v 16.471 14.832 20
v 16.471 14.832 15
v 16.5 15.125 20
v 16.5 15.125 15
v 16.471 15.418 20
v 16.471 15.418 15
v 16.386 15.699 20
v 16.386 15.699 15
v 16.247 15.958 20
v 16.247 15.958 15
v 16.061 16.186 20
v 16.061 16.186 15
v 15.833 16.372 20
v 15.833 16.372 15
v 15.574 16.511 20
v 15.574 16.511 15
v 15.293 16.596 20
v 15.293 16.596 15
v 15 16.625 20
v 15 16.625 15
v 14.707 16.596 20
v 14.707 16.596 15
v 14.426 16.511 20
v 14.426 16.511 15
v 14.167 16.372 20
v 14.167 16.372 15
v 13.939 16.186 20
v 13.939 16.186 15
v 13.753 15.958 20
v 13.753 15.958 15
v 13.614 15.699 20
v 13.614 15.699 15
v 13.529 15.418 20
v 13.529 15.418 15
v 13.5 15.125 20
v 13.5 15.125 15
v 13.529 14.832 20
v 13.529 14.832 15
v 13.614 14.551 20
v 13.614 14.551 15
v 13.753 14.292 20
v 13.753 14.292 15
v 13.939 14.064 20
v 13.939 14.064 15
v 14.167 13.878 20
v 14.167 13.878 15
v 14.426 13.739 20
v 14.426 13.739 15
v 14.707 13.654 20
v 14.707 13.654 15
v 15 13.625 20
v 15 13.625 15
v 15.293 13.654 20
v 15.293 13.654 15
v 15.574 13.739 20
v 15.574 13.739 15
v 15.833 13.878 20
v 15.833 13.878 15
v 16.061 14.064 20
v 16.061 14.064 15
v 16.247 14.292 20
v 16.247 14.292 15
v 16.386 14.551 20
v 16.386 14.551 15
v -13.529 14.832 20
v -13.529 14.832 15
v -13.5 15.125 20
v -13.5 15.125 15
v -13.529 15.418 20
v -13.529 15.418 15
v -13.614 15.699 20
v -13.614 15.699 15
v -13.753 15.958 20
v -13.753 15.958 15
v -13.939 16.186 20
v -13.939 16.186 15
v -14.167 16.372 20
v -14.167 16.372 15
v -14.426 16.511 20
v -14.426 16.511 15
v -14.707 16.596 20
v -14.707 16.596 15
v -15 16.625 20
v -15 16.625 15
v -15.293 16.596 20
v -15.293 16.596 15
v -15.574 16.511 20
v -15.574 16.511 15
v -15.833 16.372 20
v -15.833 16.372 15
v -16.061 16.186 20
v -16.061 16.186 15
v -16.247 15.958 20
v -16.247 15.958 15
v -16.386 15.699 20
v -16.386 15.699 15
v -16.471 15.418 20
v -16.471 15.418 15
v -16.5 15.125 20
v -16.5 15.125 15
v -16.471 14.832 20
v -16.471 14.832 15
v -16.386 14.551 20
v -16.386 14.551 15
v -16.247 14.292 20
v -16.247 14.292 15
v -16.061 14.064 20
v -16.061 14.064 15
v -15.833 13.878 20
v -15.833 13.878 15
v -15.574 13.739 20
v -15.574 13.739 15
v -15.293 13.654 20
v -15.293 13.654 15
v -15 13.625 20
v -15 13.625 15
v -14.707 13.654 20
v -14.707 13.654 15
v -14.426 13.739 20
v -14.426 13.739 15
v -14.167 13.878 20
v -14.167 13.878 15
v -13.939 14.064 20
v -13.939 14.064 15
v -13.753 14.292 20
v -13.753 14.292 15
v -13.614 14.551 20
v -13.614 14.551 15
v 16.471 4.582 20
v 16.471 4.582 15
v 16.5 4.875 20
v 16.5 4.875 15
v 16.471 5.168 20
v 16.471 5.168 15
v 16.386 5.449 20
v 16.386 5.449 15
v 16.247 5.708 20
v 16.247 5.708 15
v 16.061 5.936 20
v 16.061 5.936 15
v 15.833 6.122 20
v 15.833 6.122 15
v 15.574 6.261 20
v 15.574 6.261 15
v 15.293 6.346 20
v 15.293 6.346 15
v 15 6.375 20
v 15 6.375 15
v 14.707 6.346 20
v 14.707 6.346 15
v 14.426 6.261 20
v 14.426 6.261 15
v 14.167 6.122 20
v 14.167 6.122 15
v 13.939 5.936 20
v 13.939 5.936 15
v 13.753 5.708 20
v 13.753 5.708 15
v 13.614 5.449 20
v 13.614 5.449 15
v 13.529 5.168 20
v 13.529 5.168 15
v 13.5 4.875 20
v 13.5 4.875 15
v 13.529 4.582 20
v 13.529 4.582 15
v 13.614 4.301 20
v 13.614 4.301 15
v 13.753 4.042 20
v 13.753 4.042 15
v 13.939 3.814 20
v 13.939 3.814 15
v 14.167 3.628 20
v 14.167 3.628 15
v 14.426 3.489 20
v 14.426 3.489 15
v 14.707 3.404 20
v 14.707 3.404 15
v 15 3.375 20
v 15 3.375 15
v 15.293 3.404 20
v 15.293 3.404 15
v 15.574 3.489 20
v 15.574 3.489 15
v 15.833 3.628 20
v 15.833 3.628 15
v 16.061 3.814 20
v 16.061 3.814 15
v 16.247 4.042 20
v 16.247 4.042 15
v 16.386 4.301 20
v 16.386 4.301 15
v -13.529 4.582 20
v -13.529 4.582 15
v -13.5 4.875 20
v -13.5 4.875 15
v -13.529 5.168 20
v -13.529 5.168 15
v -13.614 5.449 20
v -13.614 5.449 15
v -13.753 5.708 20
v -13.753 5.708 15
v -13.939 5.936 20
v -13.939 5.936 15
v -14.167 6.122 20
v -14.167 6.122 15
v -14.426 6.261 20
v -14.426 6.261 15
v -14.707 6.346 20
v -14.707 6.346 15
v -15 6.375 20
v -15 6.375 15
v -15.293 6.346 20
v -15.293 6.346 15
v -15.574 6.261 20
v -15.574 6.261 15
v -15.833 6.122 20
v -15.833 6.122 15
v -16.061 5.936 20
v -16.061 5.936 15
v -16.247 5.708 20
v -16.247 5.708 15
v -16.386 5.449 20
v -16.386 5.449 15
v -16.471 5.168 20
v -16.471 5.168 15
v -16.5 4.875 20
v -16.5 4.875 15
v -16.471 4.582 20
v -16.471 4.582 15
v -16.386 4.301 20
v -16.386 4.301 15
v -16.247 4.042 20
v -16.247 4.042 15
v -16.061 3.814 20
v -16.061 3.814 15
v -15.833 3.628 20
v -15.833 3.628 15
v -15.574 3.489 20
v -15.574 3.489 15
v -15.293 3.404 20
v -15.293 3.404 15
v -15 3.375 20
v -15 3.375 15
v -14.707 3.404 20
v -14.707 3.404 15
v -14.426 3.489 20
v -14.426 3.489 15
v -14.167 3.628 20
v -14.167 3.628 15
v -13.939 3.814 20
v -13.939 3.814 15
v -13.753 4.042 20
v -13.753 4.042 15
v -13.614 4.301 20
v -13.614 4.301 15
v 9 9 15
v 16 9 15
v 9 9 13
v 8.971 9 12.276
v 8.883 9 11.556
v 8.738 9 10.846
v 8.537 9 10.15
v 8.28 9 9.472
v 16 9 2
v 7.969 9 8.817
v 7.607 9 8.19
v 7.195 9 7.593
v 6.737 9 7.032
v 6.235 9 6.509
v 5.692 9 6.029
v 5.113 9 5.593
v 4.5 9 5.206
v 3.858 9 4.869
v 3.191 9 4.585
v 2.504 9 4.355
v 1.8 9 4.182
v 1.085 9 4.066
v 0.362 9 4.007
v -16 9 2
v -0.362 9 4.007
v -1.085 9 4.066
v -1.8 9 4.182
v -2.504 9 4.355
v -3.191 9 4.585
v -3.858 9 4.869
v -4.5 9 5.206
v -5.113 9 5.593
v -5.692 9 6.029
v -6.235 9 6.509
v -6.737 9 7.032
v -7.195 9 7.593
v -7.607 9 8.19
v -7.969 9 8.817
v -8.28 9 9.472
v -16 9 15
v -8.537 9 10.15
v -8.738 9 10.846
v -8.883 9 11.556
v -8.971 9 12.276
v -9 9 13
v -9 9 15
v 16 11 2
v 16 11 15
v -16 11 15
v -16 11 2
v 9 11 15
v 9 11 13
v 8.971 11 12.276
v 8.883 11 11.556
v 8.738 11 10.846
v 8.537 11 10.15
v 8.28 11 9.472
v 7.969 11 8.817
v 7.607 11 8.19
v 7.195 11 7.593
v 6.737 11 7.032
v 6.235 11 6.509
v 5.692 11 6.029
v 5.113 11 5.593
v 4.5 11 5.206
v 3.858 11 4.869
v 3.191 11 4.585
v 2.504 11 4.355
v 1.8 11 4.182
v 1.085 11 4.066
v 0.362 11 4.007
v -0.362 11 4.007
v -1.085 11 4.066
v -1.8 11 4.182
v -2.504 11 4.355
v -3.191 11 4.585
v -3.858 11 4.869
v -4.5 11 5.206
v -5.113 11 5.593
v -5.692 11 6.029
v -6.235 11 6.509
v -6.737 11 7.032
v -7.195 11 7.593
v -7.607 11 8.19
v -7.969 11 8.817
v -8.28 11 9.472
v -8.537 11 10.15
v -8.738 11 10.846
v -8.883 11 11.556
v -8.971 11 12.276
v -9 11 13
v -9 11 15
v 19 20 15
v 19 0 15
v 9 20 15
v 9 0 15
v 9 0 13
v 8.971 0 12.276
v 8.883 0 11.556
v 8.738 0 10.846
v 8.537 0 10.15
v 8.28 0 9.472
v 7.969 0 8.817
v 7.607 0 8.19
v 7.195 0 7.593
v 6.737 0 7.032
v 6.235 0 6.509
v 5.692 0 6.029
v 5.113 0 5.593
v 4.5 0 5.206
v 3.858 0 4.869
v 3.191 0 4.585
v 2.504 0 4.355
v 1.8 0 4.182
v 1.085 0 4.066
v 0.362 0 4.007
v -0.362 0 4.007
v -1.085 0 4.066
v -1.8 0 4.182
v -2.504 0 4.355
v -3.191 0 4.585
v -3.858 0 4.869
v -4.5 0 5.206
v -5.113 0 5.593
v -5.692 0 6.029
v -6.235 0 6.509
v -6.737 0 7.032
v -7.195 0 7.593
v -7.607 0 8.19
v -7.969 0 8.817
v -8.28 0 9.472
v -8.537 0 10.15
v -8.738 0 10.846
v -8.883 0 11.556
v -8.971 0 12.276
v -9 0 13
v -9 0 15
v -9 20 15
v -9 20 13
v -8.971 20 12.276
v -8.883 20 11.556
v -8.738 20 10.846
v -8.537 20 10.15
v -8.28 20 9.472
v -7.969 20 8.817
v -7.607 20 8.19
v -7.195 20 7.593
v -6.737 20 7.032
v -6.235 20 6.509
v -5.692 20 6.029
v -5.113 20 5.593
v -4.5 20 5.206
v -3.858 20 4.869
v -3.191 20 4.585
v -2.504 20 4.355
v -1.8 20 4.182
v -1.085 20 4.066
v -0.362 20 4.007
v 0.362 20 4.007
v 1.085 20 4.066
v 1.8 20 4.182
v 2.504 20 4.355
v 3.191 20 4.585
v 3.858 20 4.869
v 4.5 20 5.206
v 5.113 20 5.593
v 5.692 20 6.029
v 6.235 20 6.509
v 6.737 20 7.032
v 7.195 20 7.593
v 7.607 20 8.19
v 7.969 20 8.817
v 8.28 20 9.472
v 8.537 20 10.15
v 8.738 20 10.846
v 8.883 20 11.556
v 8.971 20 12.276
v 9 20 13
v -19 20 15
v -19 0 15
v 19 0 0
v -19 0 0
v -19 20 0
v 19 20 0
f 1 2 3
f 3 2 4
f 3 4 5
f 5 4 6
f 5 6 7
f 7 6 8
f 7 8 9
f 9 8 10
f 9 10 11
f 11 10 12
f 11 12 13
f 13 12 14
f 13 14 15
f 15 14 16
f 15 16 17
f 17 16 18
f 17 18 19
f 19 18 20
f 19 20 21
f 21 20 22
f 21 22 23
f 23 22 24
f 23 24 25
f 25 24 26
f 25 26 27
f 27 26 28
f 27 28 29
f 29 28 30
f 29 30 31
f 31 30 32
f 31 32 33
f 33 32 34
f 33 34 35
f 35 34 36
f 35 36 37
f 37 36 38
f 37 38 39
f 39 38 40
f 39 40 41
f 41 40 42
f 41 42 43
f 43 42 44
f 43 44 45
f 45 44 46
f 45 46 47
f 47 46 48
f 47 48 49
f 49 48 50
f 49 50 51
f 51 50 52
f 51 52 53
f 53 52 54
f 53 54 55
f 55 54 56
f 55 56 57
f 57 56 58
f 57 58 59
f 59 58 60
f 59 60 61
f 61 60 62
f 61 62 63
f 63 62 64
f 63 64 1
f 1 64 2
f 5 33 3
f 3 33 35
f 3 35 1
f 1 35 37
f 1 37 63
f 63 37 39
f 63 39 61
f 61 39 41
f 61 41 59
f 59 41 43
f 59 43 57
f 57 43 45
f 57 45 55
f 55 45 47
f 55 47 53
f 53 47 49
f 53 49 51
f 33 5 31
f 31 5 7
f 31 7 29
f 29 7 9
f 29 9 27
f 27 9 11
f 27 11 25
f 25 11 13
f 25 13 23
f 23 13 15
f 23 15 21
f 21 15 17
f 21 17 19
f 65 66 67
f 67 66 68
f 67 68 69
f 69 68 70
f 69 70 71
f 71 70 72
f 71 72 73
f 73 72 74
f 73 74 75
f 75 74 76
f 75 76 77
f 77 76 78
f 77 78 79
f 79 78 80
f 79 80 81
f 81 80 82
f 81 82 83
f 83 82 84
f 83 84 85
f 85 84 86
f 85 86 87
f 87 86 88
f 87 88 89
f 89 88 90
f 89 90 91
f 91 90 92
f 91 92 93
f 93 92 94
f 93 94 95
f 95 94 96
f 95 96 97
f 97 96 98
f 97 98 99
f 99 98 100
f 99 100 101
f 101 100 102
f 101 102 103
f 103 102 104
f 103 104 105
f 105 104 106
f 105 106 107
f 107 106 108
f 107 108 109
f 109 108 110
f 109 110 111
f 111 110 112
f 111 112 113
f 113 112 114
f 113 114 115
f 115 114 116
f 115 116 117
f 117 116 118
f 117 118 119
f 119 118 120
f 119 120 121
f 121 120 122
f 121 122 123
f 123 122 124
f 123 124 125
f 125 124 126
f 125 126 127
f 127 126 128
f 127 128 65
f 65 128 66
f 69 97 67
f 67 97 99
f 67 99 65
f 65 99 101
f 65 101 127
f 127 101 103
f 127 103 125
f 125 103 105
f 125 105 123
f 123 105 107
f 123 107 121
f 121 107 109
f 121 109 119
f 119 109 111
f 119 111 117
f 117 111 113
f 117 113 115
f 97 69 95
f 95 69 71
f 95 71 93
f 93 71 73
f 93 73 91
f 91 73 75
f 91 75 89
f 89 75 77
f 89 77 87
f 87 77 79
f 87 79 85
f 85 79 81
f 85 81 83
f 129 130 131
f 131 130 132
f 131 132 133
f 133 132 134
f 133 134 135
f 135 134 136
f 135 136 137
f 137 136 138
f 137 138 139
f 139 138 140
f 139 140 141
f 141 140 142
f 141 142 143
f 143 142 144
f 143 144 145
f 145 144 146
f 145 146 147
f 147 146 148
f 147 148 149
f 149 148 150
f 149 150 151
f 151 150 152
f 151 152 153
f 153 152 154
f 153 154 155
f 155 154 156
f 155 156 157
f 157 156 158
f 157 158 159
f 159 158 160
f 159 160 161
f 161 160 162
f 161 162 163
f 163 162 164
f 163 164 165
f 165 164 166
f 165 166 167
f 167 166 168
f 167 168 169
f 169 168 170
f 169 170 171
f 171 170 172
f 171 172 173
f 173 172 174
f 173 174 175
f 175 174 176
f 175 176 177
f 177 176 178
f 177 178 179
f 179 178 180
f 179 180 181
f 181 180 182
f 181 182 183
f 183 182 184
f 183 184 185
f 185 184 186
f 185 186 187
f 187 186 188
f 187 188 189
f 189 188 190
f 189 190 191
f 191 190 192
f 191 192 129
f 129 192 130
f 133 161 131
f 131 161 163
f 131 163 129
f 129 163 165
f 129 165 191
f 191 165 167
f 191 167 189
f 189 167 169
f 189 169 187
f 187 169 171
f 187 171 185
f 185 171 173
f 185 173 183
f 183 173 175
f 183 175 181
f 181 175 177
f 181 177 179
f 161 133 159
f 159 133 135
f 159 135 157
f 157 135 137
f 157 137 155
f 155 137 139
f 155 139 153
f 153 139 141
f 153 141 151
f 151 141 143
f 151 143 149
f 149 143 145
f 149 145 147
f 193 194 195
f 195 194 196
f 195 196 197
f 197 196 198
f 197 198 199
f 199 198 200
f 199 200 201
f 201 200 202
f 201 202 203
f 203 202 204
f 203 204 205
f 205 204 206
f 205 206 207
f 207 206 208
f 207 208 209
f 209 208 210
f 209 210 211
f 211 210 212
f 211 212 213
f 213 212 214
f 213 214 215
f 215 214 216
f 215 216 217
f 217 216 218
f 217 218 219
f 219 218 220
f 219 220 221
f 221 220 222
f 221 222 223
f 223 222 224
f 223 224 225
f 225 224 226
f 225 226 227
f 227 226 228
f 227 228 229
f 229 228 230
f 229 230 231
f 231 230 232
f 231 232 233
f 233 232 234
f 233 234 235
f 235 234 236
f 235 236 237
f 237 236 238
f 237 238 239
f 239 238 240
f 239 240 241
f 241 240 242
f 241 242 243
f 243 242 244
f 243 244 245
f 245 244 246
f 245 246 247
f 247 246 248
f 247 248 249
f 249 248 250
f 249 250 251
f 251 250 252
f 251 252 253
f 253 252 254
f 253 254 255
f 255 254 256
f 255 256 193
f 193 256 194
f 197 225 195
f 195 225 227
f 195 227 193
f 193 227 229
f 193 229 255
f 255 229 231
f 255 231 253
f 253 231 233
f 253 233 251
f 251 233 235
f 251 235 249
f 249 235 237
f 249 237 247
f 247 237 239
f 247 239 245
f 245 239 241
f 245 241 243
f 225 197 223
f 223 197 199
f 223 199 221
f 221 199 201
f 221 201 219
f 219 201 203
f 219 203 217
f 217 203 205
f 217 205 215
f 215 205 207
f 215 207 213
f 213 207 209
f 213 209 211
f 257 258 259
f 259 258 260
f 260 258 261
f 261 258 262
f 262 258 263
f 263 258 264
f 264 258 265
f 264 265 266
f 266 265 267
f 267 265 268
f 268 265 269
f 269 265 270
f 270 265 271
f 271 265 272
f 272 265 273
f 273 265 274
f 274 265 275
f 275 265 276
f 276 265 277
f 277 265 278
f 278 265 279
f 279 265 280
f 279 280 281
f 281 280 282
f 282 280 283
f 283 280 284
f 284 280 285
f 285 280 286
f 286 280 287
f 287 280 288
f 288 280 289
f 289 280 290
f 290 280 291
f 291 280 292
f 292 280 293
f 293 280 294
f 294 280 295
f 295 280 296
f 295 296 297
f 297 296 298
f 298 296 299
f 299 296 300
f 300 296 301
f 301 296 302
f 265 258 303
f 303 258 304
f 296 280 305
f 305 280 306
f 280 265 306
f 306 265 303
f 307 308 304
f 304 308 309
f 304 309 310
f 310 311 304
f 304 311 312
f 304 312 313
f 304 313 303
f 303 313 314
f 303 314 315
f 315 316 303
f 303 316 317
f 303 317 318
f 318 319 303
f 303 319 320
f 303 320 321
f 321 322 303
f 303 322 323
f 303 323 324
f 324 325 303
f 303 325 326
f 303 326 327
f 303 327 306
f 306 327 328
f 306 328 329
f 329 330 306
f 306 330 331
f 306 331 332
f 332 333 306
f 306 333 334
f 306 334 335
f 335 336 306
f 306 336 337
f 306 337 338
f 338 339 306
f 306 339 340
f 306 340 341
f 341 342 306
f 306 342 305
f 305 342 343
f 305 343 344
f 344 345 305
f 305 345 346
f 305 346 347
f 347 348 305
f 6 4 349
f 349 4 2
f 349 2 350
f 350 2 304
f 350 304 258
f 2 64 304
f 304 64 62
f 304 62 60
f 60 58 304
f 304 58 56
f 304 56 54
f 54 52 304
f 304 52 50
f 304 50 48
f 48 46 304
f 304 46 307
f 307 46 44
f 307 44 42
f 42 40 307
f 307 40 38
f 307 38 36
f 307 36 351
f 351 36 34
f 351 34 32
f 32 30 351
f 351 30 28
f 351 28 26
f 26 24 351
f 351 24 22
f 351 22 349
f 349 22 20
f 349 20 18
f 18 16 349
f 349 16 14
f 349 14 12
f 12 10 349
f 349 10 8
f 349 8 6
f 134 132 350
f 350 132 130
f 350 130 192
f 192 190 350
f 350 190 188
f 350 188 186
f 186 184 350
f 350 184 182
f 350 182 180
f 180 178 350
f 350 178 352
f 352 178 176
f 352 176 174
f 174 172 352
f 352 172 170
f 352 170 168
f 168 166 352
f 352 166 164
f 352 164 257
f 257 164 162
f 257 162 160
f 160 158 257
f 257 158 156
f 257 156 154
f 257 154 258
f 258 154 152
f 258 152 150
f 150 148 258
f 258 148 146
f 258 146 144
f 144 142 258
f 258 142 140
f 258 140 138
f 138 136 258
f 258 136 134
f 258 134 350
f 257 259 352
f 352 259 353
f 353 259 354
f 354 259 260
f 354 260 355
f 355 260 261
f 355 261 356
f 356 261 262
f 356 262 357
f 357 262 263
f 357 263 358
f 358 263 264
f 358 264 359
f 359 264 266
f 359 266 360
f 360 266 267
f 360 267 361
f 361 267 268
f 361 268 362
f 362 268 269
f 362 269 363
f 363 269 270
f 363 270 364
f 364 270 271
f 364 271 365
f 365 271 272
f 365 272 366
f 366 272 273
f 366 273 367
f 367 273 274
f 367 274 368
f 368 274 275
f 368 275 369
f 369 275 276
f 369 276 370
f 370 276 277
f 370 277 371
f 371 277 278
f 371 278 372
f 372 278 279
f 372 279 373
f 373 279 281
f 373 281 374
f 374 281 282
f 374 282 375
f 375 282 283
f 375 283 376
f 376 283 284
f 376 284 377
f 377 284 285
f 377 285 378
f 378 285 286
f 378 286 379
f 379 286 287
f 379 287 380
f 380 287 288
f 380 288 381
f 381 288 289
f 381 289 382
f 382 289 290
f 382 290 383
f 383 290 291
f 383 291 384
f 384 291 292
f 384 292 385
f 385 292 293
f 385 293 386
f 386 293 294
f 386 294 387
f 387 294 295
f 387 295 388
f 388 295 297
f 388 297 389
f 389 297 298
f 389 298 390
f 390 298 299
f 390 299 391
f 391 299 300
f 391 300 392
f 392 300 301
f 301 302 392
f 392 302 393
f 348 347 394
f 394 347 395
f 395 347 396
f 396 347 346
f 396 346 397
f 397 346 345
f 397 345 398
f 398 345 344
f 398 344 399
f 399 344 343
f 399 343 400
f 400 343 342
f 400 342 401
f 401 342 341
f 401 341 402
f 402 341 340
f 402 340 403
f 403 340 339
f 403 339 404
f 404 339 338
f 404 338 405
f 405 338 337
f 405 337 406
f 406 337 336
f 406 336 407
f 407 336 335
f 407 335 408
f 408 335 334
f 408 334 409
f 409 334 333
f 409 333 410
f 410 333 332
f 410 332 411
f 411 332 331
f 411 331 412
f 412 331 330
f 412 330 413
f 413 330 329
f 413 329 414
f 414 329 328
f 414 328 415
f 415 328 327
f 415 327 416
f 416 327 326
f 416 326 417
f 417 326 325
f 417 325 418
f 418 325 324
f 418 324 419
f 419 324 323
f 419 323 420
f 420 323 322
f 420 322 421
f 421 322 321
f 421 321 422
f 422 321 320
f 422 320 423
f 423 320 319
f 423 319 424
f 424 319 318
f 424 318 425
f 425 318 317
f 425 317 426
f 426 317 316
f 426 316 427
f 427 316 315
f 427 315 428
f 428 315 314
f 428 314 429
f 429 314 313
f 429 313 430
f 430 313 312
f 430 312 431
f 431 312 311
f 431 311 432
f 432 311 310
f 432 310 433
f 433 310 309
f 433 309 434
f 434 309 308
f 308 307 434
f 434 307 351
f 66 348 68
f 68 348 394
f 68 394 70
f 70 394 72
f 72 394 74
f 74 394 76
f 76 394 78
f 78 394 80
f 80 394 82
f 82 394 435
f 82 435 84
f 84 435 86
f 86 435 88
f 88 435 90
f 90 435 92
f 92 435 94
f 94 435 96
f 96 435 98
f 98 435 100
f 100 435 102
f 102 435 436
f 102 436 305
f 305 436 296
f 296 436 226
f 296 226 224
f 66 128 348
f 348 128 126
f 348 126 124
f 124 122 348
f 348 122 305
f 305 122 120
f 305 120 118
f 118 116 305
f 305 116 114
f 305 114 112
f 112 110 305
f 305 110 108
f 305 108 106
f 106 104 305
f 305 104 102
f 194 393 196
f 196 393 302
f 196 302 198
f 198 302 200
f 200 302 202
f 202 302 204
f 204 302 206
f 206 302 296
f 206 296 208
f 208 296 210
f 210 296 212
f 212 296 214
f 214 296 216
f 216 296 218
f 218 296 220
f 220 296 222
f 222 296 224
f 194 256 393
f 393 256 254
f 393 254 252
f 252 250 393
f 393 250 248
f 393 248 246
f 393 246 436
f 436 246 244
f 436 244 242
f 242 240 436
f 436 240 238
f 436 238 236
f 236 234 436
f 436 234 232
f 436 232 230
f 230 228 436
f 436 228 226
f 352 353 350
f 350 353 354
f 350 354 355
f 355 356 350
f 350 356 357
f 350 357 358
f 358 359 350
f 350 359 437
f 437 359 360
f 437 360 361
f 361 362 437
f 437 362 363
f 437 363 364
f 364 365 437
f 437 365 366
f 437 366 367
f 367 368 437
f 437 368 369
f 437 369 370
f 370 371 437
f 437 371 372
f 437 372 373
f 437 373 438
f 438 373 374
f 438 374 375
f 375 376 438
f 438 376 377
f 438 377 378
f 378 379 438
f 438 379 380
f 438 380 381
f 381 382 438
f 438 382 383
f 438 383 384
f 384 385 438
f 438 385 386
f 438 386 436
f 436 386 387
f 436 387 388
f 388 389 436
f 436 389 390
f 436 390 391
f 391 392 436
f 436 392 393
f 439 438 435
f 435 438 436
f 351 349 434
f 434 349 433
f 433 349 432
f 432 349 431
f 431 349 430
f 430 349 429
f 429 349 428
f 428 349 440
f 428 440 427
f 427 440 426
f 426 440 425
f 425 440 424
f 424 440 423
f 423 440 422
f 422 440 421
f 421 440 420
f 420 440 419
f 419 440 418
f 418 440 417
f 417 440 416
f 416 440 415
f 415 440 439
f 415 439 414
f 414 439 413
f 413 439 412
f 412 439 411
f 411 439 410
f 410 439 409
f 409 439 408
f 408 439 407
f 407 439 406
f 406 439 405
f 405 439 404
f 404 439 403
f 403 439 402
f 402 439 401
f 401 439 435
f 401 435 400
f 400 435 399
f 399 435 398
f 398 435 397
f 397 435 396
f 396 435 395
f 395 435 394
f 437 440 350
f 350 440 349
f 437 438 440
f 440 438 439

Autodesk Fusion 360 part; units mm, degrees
sketch "スケッチ1" plane through (0, 0, 0) normal (0, 0, 1) x (1, 0, 0)
  line L0 (-19, 20) -> (19, 20)
  line L1 (19, 20) -> (19, 0)
  line L2 (19, 0) -> (-19, 0)
  line L3 (-19, 0) -> (-19, 20)
  dimension "d1" = 38
  dimension "d2" = 20
extrude "押し出し1" add sketch "スケッチ1" along normal blind 15
sketch "スケッチ2" plane through (0, 0, 0) normal (0, -1, 0) x (1, 0, 0)
  line L0 (-19, 0) -> (19, 0)
  line L1 (19, 0) -> (19, 15)
  line L2 (19, 15) -> (-19, 15)
  line L3 (-19, 15) -> (-19, 0)
  line L4 (-19, 13) -> (19, 13) construction
  arc A0 (-9, 13) -> (9, 13) centre (0, 13) ccw
  line L5 (9, 13) -> (9, 15)
  line L6 (-9, 13) -> (-9, 15)
  dimension "d5" = 2
  dimension "d6" = 18
extrude "押し出し2" cut sketch "スケッチ2" against normal blind 20 contours L2 A0 L5 L6
ref_plane "作業平面1" through (0, 9, 7.5) normal (0, -1, 0) x (1, 0, 0)
sketch "スケッチ3" plane through (0, 9, 6.5) normal (0, -1, 0) x (1, 0, 0)
  line L0 (-16, 8.5) -> (16, 8.5)
  line L1 (16, 8.5) -> (16, -4.5)
  line L2 (16, -4.5) -> (-16, -4.5)
  line L3 (-16, -4.5) -> (-16, 8.5)
  line L4 (-19, 8.5) -> (-9, 8.5)
  arc A0 (-9, 6.5) -> (9, 6.5) centre (0, 6.5) ccw
  line L5 (19, -6.5) -> (19, 8.5)
  dimension "d10" = 32
  dimension "d11" = 11
  dimension "d12" = 3
extrude "押し出し3" cut sketch "スケッチ3" against normal blind 2
sketch "スケッチ4" plane through (0, 0, 15) normal (0, 0, 1) x (-1, 0, 0)
  line L0 (16, -11) -> (9, -11)
  line L1 (9, -11) -> (9, -20)
  line L2 (9, -20) -> (19, -20)
  line L3 (19, -20) -> (19, 0)
  line L4 (19, 0) -> (9, 0)
  line L5 (9, 0) -> (9, -9)
  line L6 (9, -9) -> (16, -9)
  line L7 (16, -9) -> (16, -11)
  line L8 (19, -15.125) -> (-17.5478, -15.125) construction
  line L9 (-19, -20) -> (-9, -20) construction
  line L10 (19, -4.875) -> (-19, -4.875) construction
  line L11 (-19, 0) -> (-19, -20) construction
  circle A0 centre (-15, -15.125) radius 1.5
  circle A1 centre (-15, -4.875) radius 1.5
  circle A2 centre (15, -15.125) radius 1.5
  circle A3 centre (15, -4.875) radius 1.5
  dimension "d15" = 4.875
  dimension "d16" = 10.25
  dimension "d17" = 3
  dimension "d18" = 4
  dimension "d19" = 3
  dimension "d20" = 4
  dimension "d21" = 3
  dimension "d22" = 4
  dimension "d23" = 3
  dimension "d24" = 4
extrude "押し出し4" add sketch "スケッチ4" along normal blind 5 contours A0 | A1 | A2 | A3
